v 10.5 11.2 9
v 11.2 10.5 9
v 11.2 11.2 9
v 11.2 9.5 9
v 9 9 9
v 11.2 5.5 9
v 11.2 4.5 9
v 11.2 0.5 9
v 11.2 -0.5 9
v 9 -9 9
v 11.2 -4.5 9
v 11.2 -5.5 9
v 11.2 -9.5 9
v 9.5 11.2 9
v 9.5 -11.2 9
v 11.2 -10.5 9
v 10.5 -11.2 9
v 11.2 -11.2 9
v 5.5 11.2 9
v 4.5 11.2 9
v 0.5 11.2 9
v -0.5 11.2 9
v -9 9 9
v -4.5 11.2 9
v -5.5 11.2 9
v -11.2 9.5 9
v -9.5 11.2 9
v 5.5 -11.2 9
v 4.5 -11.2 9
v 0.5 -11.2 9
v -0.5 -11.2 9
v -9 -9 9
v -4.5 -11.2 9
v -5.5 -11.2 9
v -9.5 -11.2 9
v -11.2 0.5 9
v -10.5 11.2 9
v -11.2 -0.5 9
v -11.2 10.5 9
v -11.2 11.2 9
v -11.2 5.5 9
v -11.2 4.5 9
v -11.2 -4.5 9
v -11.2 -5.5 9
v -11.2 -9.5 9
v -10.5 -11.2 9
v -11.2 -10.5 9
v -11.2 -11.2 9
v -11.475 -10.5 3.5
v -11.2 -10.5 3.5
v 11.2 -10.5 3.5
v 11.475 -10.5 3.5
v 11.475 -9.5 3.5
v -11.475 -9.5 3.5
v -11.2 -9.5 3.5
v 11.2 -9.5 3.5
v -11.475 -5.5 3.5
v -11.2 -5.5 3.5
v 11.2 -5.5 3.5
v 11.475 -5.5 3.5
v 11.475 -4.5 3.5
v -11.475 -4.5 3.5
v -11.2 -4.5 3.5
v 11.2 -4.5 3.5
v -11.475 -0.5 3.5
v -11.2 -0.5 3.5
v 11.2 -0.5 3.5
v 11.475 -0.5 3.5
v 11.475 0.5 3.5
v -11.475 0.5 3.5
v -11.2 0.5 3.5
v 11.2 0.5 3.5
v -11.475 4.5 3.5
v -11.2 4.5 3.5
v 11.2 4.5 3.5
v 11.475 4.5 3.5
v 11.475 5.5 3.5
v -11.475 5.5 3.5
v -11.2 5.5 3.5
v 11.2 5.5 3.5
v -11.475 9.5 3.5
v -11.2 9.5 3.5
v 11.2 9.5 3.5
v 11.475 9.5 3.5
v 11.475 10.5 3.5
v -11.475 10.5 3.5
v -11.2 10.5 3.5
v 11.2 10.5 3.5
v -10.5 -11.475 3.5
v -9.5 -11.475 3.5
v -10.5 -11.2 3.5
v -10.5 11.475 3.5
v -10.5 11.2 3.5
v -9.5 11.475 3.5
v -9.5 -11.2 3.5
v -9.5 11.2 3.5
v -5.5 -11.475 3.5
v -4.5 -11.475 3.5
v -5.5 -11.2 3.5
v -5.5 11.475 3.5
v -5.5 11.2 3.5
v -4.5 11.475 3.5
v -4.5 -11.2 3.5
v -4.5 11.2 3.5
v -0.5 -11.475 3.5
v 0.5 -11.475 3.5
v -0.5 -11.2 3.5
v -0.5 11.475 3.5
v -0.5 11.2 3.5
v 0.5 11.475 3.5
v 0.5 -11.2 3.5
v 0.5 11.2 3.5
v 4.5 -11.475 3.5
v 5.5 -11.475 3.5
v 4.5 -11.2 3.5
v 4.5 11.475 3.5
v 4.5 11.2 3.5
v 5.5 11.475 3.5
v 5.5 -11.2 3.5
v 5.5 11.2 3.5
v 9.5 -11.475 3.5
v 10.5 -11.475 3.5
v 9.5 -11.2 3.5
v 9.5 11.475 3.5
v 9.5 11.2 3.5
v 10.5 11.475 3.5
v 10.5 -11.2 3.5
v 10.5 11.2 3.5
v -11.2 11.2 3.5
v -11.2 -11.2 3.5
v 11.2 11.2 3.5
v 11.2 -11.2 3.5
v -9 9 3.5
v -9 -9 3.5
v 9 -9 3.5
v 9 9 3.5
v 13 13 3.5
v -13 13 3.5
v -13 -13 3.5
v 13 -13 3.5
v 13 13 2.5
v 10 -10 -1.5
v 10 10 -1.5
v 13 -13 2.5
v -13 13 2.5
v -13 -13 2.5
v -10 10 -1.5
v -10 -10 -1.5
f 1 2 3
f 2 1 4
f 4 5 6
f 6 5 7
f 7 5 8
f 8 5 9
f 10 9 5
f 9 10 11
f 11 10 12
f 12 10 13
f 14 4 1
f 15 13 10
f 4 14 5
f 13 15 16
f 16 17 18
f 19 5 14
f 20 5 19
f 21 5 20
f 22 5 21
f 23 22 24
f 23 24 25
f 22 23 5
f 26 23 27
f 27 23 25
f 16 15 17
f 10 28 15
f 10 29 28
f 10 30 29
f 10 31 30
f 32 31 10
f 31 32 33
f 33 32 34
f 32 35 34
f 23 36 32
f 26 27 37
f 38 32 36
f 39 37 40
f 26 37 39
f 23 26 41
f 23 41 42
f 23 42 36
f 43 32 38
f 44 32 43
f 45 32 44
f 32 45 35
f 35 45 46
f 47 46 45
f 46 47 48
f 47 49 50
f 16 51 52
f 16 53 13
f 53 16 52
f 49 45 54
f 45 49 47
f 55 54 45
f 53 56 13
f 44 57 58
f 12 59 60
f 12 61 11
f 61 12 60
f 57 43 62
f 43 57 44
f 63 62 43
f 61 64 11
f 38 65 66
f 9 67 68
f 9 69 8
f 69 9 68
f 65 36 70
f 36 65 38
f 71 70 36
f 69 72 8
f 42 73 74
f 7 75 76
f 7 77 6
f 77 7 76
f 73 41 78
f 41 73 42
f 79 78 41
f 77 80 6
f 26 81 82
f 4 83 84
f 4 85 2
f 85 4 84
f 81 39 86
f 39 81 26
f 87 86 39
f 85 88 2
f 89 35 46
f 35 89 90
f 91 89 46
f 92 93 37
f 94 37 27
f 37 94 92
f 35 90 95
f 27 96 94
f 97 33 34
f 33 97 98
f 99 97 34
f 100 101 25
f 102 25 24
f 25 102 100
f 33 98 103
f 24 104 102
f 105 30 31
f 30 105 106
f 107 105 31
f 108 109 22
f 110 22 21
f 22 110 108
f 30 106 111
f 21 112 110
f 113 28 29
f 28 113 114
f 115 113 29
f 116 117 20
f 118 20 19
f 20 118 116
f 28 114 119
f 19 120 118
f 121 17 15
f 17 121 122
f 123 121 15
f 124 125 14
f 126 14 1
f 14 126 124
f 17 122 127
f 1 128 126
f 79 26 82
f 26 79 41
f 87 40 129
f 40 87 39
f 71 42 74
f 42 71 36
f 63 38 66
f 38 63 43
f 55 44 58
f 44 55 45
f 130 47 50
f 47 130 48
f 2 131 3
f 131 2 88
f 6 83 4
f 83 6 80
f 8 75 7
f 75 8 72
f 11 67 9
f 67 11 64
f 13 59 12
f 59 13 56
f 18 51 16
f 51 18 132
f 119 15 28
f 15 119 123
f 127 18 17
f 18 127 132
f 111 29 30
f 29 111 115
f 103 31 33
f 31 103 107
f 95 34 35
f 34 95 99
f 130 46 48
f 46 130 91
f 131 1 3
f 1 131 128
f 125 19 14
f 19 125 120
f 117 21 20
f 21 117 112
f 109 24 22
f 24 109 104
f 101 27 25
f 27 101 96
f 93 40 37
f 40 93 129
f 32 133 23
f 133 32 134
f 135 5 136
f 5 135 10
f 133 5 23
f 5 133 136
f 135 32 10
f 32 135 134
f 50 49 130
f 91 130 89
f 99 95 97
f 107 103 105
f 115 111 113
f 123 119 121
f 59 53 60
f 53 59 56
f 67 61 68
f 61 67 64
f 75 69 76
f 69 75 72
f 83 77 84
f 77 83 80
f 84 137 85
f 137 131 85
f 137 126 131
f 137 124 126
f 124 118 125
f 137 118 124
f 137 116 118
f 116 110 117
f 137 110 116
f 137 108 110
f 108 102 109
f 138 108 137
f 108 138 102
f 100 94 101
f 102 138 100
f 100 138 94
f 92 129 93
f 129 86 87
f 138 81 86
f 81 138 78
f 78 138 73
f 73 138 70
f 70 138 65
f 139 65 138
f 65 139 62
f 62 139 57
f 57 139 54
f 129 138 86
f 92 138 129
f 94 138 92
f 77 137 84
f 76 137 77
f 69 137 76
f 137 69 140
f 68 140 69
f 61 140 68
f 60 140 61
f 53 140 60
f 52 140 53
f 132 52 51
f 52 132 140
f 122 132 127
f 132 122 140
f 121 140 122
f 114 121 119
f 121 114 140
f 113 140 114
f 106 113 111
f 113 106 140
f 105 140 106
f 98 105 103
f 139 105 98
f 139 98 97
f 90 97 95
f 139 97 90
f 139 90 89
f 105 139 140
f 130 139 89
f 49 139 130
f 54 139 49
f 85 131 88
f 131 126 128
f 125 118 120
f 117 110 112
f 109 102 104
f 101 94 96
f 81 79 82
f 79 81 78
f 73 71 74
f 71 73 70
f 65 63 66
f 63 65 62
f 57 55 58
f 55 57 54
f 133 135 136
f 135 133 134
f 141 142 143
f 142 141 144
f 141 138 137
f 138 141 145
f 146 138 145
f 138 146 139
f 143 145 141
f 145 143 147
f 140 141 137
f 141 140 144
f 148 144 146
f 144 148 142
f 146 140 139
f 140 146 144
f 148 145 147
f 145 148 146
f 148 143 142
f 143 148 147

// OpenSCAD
$fs = 1;
$fa = 6;

  hull() {
    translate([0, 0, 3]) cube(size=[26, 26, 1], center=true);
    cube(size=[20, 20, 3], center=true);
  }
translate([0, 0, 6]) {
  difference() {
    union() {
      cube(size=[22.4, 22.4, 6], center=true);
      for (yy=[-10:5:10]) {
        translate([0, yy, -3.5]) hull() {
          cube(size=[23, 1, 1], center=true);
          translate([0, 0, 6]) cube(size=[22.4, 1, 1], center=true);
        }
      }
      for (xx=[-10:5:10]) {
        translate([xx, 0, -3.5]) hull() {
          cube(size=[1, 23, 1], center=true);
          translate([0, 0, 6]) cube(size=[1, 22.4, 1], center=true);
        }
      }
    }
    cube(size=[18, 18, 6.1], center=true);
  }
}
